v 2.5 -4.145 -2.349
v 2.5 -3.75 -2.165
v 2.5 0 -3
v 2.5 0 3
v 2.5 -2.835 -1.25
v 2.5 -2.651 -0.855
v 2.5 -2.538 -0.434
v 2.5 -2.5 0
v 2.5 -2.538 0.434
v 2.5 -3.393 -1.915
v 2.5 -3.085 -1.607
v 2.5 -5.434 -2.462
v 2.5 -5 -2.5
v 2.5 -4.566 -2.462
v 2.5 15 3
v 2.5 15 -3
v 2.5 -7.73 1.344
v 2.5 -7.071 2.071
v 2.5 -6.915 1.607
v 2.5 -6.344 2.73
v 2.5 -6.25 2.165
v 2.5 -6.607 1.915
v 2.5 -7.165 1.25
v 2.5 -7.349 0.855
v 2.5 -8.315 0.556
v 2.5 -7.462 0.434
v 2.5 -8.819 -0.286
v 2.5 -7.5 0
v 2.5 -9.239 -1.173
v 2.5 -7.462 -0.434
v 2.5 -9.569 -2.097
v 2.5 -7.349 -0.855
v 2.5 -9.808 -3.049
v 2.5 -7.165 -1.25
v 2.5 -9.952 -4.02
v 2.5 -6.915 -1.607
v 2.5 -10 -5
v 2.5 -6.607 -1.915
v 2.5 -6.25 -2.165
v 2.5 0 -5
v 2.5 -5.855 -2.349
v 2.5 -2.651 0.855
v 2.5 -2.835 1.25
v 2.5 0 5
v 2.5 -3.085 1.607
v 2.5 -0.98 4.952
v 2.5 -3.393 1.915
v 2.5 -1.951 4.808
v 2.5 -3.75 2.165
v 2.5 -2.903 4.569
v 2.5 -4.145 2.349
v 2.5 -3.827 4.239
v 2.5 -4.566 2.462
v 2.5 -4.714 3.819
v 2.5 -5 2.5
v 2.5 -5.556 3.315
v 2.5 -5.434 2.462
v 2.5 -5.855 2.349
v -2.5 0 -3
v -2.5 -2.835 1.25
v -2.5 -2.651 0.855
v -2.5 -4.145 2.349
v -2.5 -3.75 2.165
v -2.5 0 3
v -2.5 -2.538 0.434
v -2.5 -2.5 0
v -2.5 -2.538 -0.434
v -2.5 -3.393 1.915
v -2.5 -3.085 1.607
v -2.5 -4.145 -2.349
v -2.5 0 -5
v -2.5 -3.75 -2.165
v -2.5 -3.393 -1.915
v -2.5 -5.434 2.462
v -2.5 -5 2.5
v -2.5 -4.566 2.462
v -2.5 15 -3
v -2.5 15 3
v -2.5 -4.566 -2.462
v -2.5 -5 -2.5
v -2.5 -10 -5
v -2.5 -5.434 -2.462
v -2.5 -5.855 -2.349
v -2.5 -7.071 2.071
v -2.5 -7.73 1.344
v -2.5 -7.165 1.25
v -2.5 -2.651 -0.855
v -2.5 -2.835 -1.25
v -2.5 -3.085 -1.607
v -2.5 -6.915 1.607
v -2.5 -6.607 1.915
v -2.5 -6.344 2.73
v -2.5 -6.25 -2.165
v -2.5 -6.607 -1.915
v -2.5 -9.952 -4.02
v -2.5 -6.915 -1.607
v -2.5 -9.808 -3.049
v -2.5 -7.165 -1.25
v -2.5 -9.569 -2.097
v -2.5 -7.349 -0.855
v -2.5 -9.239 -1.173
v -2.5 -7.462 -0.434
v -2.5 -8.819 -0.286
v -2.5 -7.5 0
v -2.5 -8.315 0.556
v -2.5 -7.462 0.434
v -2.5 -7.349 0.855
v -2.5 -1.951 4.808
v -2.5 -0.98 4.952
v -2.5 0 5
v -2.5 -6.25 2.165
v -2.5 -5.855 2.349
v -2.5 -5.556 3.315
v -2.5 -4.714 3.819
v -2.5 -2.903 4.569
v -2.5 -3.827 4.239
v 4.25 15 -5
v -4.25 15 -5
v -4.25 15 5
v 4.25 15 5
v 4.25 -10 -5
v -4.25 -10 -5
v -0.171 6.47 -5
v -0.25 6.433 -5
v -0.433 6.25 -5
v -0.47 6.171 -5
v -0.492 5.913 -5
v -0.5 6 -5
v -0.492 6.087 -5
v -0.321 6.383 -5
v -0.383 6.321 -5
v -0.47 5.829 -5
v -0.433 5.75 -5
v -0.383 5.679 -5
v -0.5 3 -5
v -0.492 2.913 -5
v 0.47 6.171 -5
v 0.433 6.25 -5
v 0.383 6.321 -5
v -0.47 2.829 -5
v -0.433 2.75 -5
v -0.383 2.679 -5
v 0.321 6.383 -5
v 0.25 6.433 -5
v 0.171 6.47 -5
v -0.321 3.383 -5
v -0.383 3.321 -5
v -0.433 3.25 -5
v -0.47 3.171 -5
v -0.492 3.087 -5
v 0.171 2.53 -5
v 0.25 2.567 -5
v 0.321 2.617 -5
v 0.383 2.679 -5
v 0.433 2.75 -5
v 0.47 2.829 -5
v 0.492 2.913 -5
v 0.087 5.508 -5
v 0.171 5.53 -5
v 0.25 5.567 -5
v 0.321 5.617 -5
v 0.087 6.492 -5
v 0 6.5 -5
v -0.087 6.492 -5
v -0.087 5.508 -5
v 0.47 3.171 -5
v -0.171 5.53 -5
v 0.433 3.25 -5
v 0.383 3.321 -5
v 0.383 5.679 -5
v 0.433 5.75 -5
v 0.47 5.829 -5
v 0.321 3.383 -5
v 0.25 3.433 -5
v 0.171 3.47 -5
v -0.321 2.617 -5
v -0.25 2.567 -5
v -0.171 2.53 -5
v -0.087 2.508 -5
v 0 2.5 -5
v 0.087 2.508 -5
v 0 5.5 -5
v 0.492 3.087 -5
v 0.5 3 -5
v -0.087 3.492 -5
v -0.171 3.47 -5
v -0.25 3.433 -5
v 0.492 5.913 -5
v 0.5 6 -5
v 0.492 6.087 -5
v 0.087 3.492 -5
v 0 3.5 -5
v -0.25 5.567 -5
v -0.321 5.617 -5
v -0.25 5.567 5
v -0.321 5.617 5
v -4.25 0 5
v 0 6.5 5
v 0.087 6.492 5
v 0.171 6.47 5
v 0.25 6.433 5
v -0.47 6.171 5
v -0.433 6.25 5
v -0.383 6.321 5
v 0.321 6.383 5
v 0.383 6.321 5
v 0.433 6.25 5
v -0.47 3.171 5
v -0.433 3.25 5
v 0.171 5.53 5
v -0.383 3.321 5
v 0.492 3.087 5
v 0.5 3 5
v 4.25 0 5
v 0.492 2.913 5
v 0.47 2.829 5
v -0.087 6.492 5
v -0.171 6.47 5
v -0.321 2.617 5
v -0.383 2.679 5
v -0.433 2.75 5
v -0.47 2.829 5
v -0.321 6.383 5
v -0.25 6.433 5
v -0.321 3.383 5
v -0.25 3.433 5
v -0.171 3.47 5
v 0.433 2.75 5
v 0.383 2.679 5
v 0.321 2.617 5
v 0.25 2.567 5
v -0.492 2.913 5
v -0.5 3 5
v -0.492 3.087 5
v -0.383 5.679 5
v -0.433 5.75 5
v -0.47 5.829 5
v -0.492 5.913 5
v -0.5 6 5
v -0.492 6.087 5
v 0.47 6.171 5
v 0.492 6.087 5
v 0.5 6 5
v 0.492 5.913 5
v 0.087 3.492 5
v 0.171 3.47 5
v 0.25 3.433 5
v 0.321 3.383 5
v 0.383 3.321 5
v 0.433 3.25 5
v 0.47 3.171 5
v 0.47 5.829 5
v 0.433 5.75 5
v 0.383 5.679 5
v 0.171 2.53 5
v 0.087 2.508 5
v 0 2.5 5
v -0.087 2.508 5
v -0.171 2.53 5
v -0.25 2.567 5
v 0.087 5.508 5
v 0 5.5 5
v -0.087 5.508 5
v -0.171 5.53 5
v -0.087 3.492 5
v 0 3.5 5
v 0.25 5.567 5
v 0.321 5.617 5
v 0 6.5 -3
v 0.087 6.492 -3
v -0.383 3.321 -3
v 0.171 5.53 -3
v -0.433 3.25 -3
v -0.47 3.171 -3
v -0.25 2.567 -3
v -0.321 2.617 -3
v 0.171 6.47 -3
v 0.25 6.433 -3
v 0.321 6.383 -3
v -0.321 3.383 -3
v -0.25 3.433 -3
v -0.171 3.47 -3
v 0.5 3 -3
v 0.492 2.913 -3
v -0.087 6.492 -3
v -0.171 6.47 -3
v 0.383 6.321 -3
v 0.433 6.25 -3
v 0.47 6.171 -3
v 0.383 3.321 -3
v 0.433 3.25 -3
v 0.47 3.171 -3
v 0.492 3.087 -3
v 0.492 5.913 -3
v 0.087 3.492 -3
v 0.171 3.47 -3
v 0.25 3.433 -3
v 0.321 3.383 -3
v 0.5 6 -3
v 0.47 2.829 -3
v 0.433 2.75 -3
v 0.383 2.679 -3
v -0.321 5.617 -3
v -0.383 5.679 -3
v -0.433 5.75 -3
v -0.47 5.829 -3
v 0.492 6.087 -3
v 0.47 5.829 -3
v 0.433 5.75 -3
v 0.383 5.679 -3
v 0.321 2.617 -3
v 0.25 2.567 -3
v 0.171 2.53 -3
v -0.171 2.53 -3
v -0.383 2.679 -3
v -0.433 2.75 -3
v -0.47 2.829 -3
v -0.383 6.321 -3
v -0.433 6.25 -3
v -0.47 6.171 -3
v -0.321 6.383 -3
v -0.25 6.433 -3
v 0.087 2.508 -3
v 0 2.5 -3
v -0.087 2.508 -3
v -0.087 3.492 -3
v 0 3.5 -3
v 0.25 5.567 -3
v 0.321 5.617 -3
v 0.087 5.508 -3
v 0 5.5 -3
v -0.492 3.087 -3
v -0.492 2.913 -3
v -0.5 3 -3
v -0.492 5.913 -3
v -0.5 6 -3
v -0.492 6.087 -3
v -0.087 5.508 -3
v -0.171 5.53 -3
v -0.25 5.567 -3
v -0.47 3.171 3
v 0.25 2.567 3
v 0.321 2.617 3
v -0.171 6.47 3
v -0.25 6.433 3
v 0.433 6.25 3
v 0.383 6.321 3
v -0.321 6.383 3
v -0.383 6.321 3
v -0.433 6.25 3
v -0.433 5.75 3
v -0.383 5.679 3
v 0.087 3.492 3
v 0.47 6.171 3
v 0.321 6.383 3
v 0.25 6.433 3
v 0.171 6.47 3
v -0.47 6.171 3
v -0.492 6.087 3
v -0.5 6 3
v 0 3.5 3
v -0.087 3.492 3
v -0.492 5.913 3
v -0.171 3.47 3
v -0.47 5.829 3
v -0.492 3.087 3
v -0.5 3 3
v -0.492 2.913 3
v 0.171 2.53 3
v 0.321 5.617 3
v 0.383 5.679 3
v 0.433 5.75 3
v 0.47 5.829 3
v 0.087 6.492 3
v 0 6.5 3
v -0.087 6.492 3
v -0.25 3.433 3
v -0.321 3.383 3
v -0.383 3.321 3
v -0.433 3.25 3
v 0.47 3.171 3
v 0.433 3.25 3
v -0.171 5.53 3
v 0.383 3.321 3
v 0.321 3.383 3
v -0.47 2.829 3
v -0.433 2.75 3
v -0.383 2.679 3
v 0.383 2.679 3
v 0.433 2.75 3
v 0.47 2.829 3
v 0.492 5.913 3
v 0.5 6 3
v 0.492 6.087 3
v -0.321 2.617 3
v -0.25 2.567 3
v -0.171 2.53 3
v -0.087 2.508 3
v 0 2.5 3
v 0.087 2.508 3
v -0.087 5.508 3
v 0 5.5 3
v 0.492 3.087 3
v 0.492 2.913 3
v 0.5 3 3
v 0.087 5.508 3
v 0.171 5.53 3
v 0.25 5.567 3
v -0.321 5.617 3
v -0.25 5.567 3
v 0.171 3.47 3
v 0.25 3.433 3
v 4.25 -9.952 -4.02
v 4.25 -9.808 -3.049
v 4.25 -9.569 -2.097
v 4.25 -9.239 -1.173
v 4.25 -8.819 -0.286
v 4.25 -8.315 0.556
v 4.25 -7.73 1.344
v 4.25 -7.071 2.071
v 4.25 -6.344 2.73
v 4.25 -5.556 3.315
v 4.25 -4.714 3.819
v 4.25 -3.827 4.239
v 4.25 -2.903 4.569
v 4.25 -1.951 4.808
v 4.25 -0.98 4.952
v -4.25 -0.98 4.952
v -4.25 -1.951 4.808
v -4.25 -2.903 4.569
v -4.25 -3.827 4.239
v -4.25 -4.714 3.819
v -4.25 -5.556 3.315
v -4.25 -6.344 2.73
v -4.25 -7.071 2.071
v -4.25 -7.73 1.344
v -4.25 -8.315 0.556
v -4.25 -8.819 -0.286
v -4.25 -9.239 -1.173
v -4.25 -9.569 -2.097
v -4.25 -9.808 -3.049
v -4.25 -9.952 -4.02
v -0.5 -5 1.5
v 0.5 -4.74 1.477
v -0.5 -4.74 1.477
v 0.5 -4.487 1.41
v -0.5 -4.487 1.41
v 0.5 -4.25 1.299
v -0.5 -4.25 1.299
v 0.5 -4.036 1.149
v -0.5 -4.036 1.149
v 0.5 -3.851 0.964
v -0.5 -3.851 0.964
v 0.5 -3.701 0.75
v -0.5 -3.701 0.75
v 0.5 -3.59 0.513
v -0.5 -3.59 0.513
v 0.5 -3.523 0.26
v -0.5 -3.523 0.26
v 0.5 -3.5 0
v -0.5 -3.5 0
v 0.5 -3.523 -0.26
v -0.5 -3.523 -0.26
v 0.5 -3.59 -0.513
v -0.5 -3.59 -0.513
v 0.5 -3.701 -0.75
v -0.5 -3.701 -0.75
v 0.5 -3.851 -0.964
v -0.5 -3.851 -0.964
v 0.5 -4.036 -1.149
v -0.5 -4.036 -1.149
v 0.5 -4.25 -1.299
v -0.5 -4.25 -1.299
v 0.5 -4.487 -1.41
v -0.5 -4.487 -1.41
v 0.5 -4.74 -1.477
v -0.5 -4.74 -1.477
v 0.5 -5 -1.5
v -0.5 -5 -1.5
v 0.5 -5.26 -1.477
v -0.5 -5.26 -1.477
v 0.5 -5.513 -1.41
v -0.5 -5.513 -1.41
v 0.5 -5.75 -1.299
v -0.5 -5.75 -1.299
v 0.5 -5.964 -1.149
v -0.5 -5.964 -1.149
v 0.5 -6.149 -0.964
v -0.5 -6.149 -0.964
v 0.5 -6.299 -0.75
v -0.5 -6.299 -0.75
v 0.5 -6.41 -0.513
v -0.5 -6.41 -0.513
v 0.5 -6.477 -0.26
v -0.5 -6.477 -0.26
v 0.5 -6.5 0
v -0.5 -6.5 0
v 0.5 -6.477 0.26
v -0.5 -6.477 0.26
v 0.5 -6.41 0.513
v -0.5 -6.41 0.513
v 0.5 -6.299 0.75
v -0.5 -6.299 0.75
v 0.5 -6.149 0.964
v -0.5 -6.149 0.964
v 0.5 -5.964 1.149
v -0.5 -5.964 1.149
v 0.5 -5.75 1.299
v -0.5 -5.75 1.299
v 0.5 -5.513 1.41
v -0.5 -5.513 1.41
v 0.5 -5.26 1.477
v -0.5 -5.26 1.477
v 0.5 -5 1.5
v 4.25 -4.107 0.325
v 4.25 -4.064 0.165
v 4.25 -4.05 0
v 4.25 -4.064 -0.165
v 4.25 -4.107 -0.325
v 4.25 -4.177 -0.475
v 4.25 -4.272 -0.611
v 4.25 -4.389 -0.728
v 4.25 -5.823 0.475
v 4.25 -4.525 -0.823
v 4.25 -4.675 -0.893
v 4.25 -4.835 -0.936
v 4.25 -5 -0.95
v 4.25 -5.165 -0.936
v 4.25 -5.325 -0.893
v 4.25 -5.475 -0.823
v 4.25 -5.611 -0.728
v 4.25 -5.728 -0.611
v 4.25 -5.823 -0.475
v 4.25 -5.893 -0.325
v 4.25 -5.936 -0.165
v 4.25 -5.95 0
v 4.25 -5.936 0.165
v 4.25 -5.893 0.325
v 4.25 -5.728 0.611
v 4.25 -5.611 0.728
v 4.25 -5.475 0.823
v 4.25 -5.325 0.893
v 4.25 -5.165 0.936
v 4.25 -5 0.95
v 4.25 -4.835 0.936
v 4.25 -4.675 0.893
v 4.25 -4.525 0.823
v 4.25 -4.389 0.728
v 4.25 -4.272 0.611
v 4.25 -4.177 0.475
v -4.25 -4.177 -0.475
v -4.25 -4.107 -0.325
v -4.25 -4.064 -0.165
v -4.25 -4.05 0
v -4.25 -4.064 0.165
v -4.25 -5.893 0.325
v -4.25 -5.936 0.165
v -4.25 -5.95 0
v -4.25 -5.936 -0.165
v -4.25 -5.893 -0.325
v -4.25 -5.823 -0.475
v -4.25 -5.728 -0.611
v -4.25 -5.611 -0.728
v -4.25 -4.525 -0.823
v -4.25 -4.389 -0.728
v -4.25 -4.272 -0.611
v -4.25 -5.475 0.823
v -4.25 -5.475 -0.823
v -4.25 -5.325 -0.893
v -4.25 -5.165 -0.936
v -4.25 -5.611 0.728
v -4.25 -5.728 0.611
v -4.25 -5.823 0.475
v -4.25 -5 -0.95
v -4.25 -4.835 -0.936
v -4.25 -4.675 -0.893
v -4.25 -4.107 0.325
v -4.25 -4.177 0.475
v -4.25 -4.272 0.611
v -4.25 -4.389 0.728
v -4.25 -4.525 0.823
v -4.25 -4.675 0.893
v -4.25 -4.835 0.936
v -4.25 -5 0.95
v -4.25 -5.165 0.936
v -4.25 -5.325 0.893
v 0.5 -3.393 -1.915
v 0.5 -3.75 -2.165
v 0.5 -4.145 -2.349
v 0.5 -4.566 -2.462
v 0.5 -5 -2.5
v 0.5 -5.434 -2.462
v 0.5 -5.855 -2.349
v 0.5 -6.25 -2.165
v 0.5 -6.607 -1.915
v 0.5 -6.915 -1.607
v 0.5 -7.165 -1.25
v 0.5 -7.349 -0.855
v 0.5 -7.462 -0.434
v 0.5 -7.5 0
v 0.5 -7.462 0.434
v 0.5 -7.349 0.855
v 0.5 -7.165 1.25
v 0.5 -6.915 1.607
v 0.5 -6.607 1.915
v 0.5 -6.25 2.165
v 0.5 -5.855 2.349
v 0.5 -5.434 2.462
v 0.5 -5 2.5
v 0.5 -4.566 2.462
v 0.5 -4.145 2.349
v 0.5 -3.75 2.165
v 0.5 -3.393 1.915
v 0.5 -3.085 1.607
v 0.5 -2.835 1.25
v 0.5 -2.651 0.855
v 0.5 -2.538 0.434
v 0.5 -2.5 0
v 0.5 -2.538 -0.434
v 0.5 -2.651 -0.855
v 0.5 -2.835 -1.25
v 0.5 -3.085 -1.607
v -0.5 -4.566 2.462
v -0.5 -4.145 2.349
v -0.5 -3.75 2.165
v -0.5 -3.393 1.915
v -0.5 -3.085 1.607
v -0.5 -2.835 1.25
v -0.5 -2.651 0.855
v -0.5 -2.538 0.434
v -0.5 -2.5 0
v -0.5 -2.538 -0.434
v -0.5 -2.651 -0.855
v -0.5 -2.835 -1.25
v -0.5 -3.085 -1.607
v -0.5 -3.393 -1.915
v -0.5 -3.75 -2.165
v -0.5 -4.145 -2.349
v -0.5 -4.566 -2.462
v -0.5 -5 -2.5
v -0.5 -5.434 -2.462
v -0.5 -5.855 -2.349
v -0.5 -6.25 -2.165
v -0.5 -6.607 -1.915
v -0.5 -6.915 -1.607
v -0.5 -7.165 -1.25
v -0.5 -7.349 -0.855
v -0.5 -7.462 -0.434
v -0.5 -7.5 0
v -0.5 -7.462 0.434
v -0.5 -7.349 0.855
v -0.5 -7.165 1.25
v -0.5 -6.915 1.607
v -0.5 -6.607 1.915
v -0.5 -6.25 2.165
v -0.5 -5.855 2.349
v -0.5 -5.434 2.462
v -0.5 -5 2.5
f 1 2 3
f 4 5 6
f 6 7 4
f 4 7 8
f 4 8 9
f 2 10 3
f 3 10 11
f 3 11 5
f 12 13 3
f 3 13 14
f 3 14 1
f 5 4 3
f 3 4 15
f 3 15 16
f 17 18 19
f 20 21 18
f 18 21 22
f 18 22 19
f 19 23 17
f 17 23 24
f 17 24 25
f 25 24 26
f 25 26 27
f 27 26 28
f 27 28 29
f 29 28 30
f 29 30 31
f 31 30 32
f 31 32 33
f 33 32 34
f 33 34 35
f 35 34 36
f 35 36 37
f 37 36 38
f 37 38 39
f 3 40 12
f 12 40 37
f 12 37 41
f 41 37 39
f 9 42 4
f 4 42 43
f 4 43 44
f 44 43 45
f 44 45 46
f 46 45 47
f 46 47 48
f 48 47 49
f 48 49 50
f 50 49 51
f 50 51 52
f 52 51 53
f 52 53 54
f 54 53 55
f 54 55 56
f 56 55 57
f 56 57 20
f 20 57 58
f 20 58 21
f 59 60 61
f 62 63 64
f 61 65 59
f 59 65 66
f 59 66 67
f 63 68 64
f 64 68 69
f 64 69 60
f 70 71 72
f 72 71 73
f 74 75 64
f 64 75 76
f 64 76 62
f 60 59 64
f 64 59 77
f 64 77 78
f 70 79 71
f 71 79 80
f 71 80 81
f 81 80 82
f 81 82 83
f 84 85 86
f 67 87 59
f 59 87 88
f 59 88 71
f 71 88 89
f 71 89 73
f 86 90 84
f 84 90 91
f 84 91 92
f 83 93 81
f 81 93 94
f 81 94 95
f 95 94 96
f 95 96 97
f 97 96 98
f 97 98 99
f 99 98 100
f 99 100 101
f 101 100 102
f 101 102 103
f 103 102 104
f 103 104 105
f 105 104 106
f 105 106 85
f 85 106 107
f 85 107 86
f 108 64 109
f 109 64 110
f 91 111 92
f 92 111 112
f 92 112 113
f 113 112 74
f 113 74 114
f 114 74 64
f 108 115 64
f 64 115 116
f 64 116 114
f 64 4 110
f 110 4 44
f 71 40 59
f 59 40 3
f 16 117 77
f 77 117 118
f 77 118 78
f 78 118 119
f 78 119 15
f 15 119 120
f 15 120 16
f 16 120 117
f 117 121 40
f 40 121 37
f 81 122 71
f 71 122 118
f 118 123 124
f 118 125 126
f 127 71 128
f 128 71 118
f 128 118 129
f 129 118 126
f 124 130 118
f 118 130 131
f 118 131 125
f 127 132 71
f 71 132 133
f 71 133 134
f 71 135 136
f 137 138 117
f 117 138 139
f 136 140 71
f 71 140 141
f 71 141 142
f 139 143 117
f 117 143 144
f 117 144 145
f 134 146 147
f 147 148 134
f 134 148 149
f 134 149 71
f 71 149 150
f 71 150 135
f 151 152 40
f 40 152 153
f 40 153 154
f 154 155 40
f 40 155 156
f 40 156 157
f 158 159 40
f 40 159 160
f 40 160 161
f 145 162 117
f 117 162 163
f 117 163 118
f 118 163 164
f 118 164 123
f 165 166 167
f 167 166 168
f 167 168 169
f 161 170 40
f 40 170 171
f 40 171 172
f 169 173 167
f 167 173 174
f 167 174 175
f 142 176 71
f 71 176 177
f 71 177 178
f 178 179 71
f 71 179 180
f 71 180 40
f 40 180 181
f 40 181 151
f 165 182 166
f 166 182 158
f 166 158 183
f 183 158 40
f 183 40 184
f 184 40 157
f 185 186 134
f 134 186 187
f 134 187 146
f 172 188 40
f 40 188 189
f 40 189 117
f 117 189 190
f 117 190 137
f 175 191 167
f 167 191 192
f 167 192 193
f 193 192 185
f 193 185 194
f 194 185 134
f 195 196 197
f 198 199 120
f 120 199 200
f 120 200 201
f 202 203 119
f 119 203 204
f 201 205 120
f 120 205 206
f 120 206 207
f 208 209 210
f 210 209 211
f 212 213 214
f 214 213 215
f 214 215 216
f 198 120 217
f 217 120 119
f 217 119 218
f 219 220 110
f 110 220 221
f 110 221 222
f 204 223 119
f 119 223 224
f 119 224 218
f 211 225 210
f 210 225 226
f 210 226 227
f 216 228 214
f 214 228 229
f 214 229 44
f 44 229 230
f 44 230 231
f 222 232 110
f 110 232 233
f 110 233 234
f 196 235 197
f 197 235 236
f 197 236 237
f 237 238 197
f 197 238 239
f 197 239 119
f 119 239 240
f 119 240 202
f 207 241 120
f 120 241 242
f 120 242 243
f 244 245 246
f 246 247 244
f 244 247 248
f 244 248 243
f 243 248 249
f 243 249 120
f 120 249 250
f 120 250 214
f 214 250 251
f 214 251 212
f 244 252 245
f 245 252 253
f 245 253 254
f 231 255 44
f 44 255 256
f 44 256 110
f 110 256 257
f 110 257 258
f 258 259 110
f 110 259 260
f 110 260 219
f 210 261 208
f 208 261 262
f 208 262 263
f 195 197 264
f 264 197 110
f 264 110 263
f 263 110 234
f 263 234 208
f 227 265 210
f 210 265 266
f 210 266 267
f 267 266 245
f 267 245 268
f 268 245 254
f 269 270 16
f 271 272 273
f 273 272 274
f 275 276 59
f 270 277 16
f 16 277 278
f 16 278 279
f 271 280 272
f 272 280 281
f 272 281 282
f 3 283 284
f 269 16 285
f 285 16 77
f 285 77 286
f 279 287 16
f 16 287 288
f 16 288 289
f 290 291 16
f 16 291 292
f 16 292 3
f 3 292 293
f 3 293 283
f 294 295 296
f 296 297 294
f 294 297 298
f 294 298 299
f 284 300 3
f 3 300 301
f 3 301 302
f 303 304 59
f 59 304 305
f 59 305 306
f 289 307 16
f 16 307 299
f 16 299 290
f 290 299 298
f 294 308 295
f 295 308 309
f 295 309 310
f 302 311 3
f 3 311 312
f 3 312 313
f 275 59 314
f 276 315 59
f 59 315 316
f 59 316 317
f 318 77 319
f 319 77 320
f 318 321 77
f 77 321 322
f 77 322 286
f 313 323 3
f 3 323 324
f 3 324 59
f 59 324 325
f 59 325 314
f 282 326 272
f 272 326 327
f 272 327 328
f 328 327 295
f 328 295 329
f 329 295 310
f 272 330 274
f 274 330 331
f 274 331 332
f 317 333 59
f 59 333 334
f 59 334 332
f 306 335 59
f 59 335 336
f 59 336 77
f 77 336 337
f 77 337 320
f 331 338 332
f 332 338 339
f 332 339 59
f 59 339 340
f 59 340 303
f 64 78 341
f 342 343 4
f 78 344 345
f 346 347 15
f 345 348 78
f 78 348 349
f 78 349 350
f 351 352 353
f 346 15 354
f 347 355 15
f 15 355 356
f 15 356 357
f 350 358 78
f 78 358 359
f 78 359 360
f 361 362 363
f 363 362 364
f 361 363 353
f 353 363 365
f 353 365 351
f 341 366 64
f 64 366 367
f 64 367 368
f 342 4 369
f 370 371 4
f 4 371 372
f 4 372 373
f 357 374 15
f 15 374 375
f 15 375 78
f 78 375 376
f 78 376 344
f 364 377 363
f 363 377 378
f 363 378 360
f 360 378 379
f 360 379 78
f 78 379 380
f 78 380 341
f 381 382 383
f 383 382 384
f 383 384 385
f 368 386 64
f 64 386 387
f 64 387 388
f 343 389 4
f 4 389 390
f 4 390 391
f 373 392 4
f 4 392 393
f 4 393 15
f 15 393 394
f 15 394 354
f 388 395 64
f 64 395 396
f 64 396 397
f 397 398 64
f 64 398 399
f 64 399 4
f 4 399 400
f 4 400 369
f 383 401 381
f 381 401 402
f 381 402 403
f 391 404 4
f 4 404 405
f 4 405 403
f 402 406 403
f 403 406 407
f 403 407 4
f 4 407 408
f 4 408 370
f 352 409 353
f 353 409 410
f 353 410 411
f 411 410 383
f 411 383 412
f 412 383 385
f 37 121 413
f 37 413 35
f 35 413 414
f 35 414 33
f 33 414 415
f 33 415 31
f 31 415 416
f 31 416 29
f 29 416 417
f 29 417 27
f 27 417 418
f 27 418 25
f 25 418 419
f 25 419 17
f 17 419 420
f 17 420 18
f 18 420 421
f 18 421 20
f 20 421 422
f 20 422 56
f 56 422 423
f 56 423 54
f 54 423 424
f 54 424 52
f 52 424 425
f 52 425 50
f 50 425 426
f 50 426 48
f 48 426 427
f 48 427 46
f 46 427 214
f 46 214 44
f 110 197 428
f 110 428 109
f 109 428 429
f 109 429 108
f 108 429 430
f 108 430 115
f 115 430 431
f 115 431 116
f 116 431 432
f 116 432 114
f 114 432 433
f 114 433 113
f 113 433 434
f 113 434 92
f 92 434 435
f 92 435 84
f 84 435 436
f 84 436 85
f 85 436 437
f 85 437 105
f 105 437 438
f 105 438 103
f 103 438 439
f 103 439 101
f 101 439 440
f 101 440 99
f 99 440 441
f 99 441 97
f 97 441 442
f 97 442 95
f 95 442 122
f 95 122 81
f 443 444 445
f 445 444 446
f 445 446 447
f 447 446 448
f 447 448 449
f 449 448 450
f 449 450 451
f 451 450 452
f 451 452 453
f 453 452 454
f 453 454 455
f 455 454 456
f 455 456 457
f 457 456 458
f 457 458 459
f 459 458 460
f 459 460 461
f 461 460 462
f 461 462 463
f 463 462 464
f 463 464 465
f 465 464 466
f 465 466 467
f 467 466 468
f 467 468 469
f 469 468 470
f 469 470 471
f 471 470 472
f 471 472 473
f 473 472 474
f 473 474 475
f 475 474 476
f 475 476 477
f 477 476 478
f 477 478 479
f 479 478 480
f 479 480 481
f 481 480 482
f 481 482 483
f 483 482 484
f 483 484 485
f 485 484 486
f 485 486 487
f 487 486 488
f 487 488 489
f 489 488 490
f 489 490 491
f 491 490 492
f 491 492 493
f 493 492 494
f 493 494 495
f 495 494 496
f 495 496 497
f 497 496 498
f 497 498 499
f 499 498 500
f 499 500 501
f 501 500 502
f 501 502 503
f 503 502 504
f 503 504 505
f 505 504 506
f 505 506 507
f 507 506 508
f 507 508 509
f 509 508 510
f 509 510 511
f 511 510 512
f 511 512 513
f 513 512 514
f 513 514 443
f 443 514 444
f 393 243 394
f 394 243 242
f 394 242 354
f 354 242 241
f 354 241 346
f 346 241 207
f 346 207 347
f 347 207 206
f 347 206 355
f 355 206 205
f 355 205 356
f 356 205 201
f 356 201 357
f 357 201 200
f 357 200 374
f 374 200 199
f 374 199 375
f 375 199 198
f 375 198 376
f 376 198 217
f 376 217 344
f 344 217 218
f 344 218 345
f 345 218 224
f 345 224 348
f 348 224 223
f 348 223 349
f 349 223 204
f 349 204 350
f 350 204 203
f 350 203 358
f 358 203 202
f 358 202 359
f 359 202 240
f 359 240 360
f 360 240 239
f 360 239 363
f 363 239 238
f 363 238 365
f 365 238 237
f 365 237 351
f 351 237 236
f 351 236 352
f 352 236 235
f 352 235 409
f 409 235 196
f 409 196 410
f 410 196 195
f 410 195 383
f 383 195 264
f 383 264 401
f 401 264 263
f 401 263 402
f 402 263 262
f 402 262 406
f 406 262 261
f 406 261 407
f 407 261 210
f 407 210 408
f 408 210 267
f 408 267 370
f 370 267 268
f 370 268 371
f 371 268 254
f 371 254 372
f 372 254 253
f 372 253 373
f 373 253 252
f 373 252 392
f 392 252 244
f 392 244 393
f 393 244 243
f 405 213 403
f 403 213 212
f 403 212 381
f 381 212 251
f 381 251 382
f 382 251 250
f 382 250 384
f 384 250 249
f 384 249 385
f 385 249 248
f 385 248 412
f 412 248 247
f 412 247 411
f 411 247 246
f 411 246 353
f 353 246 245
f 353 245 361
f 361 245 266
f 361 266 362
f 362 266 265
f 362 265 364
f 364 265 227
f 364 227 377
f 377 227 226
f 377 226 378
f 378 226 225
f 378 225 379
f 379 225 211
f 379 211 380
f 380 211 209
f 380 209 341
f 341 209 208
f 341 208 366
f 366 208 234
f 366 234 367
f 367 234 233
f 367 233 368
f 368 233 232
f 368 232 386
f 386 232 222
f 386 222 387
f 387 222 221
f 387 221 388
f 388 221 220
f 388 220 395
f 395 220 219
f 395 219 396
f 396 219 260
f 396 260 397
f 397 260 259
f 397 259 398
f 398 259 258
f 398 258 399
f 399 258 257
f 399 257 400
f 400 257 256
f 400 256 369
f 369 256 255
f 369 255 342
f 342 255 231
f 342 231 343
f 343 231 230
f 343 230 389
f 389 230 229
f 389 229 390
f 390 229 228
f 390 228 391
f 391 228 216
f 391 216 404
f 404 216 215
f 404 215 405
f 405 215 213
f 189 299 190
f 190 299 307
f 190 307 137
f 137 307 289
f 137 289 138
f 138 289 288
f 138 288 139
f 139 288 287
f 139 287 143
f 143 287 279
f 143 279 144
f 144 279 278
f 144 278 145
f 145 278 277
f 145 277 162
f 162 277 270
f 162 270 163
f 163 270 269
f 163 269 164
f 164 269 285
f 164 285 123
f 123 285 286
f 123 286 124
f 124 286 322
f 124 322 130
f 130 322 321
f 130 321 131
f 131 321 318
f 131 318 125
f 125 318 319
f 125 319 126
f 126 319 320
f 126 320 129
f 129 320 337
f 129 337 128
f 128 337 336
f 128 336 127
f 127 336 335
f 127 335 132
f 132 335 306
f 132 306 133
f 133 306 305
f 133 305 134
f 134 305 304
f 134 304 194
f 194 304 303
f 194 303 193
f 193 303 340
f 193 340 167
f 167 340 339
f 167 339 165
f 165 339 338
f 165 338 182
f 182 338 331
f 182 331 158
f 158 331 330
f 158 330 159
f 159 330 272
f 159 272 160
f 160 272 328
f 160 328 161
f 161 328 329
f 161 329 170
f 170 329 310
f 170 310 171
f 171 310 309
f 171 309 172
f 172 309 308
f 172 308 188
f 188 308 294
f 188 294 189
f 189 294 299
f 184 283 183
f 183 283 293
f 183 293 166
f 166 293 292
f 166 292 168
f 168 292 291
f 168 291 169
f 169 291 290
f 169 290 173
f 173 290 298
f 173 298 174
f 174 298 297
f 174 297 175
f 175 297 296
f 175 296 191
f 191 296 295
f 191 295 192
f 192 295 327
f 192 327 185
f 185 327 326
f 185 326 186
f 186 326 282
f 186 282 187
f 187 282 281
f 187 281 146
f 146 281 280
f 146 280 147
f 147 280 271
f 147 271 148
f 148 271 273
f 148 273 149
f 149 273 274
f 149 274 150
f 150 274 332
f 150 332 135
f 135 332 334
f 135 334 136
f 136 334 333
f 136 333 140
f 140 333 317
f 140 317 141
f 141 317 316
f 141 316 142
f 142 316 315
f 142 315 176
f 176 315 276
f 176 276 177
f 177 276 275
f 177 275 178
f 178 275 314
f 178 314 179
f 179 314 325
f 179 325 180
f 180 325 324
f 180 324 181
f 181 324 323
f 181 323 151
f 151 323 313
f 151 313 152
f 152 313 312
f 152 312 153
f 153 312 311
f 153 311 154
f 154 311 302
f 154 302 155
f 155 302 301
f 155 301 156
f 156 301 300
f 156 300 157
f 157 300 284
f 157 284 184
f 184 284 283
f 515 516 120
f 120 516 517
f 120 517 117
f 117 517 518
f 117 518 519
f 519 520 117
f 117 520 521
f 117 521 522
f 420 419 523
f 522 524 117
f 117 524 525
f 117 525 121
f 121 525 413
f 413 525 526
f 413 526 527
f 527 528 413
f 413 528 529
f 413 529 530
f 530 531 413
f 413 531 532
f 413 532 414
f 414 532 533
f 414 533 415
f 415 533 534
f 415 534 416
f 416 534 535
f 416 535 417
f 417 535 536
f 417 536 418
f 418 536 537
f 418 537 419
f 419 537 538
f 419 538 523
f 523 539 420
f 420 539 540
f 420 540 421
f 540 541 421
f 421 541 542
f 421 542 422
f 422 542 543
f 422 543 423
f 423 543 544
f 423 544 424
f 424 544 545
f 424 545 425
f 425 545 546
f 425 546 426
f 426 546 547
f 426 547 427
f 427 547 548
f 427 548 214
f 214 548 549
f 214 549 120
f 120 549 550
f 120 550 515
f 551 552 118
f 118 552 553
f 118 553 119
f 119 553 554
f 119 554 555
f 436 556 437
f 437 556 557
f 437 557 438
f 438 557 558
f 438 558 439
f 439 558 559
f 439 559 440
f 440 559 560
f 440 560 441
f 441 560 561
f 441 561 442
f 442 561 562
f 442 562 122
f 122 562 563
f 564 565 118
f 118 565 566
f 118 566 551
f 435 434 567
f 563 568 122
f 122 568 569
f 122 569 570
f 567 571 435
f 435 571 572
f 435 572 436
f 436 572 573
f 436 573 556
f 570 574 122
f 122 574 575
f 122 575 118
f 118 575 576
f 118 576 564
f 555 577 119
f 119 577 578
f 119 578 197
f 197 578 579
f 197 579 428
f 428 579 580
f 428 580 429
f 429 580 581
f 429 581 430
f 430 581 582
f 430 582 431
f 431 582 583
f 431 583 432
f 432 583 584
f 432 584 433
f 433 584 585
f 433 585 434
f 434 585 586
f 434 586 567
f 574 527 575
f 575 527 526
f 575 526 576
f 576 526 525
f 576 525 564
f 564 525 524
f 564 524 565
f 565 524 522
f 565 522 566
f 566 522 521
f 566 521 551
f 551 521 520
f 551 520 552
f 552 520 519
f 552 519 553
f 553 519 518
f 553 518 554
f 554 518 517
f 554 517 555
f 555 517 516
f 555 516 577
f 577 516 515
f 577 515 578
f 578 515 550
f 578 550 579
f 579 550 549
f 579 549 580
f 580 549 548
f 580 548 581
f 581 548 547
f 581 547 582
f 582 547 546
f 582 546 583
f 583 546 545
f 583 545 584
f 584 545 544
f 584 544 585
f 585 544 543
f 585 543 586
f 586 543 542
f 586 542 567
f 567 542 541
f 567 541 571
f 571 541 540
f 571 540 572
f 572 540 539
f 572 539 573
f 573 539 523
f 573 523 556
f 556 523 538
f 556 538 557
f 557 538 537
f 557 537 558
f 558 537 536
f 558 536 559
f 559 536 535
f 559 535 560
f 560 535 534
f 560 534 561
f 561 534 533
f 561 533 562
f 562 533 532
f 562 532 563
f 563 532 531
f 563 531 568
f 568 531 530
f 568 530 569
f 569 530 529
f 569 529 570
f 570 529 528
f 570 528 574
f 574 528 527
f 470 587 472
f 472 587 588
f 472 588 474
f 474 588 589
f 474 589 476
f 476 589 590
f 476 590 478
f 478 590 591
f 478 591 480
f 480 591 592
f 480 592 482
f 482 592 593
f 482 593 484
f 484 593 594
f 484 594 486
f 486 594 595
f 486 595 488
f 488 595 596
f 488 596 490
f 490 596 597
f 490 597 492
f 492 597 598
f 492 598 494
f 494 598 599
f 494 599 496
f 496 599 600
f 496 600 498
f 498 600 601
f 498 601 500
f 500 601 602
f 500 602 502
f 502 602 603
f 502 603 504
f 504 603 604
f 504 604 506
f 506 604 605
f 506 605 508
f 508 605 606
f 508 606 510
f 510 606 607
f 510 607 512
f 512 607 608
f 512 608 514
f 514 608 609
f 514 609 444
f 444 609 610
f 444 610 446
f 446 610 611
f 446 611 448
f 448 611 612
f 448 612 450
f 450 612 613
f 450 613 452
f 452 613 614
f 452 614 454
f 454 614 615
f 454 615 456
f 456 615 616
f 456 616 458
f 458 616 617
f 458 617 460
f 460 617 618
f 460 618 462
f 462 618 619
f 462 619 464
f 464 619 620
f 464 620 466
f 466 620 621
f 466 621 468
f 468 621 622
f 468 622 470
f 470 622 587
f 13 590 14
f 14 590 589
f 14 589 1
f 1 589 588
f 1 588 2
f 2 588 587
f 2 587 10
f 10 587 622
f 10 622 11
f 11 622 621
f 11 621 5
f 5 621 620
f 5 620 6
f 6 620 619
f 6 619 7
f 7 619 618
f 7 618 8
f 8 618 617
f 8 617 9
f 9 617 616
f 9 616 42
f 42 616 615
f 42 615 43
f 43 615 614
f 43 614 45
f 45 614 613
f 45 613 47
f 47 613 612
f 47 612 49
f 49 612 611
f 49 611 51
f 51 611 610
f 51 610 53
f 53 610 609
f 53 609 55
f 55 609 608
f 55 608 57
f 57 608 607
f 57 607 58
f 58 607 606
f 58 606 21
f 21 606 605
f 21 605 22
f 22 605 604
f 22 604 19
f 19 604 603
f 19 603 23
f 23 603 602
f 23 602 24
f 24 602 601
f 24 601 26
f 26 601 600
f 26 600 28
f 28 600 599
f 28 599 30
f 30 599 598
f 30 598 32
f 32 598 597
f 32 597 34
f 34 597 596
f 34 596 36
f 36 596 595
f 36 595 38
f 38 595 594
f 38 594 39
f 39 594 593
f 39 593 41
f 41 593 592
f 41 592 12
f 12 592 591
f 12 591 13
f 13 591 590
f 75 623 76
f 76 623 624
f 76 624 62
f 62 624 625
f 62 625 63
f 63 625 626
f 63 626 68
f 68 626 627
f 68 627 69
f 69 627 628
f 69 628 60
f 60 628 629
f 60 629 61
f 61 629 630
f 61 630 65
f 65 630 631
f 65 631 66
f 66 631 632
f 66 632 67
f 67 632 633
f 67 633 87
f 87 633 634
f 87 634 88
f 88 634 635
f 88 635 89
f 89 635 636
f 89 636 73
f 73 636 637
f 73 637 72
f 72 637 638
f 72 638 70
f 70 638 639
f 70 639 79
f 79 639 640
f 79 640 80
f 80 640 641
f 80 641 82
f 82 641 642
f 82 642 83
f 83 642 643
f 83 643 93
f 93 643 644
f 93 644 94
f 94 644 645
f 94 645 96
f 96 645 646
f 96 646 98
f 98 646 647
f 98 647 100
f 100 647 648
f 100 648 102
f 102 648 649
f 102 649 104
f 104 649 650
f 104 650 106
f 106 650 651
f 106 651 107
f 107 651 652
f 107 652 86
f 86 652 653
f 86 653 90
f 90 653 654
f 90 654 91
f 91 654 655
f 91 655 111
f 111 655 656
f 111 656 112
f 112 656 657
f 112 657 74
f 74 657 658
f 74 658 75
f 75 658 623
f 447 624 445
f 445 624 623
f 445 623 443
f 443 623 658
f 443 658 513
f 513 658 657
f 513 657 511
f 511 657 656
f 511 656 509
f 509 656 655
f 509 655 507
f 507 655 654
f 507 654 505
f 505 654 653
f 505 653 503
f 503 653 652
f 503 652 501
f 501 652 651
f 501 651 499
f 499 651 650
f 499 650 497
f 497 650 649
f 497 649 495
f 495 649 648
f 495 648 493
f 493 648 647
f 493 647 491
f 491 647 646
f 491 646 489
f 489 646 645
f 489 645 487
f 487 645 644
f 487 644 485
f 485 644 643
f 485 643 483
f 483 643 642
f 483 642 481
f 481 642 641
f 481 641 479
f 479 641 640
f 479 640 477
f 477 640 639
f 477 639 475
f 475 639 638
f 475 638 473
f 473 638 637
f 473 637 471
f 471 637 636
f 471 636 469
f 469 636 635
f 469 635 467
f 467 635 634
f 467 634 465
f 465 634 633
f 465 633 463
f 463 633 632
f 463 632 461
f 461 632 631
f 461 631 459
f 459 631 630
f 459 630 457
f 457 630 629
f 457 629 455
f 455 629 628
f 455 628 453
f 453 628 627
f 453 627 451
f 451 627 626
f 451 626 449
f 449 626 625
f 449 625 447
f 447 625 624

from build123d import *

# Parameters (mm, degrees)
SKETCH1_W               = 9
SKETCH1_H               = 10
SKETCH1_W_2             = 5
SKETCH1_H_2             = 6
BOSS_EXTRUDE1_DEPTH     = 15
BOSS_EXTRUDE2_DEPTH     = 2
SKETCH3_R               = 0.95
CUT_EXTRUDE2_DEPTH      = 1
CUT_EXTRUDE2_DEPTH_BACK = 10
SKETCH5_R               = 1.5
SKETCH5_R_2             = 0.95
BOSS_EXTRUDE3_DEPTH     = 5
SKETCH6_R               = 0.5
CUT_EXTRUDE3_DEPTH      = 11
SKETCH7_W               = 0.25
SKETCH7_H               = 25.68334021
SKETCH7_H_2             = 27.406815516
CUT_EXTRUDE4_DEPTH      = 1
CUT_EXTRUDE4_DEPTH_BACK = 11
SKETCH8_R               = 2.5
SKETCH8_R_2             = 1.5
BOSS_EXTRUDE4_DEPTH     = 2


with BuildPart() as part:
    # Sketch1 → Boss-Extrude1 (new body)
    with BuildSketch(Plane(origin=(0, 0, 0), x_dir=(1, 0, 0), z_dir=(0, 1, 0))):
        Rectangle(SKETCH1_W, SKETCH1_H)
        Rectangle(SKETCH1_W_2, SKETCH1_H_2, mode=Mode.SUBTRACT)
    extrude(amount=BOSS_EXTRUDE1_DEPTH)

    # Sketch2 → Boss-Extrude2 (add)
    with BuildSketch(Plane(origin=(4.5, 0, 0), x_dir=(0, 0, -1), z_dir=(1, 0, 0))):
        with BuildLine():
            Line((5, -10), (5, 0))
            Line((5, 0), (-5, 0))
            ThreePointArc((-5, 0), (-2.071067812, -7.071067812), (5, -10))
        make_face()
    boss_extrude2 = extrude(amount=-BOSS_EXTRUDE2_DEPTH)

    # Mirror1: Boss-Extrude2 across plane
    add(boss_extrude2.mirror(Plane(origin=(0, 0, 0), x_dir=(0, 0, 1), z_dir=(1, 0, 0))))

    # Sketch3 → Cut-Extrude2 (cut, two sides)
    with BuildSketch(Plane(origin=(4.5, 0, 0), x_dir=(0, 0, -1), z_dir=(1, 0, 0))) as cut_extrude2_sk:
        with Locations((0, -5)):
            Circle(SKETCH3_R)
    extrude(amount=CUT_EXTRUDE2_DEPTH, mode=Mode.SUBTRACT)
    extrude(cut_extrude2_sk.sketch, amount=-CUT_EXTRUDE2_DEPTH_BACK, mode=Mode.SUBTRACT)

    # Sketch5 → Boss-Extrude3 (add)
    with BuildSketch(Plane(origin=(-2.5, 0, 0), x_dir=(0, 0, -1), z_dir=(1, 0, 0))):
        with Locations((0, -5)):
            Circle(SKETCH5_R)
        with Locations((0, -5)):
            Circle(SKETCH5_R_2, mode=Mode.SUBTRACT)
    extrude(amount=BOSS_EXTRUDE3_DEPTH)

    # Sketch6 → Cut-Extrude3 (cut, through all)
    with BuildSketch(Plane.XY.offset(5)):
        with Locations((0, 3)):
            Circle(SKETCH6_R)
        with Locations((0, 6)):
            Circle(SKETCH6_R)
    extrude(amount=-CUT_EXTRUDE3_DEPTH, mode=Mode.SUBTRACT)

    # Sketch7 → Cut-Extrude4 (cut, two sides)
    with BuildSketch(Plane.XY.offset(5)) as cut_extrude4_sk:
        with Locations((-4.375, 2.158329895)):
            Rectangle(SKETCH7_W, SKETCH7_H)
        with Locations((4.375, 1.296592242)):
            Rectangle(SKETCH7_W, SKETCH7_H_2)
    extrude(amount=CUT_EXTRUDE4_DEPTH, mode=Mode.SUBTRACT)
    extrude(cut_extrude4_sk.sketch, amount=-CUT_EXTRUDE4_DEPTH_BACK, mode=Mode.SUBTRACT)

    # Sketch8 → Boss-Extrude4 (add)
    with BuildSketch(Plane.ZY.offset(-2.5)):
        with Locations((0, -5)):
            Circle(SKETCH8_R)
        with Locations((0, -5)):
            Circle(SKETCH8_R_2, mode=Mode.SUBTRACT)
    boss_extrude4 = extrude(amount=BOSS_EXTRUDE4_DEPTH)

    # Mirror2: Boss-Extrude4 across plane
    add(boss_extrude4.mirror(Plane(origin=(0, 0, 0), x_dir=(0, 0, 1), z_dir=(1, 0, 0))))


solid = part.part
